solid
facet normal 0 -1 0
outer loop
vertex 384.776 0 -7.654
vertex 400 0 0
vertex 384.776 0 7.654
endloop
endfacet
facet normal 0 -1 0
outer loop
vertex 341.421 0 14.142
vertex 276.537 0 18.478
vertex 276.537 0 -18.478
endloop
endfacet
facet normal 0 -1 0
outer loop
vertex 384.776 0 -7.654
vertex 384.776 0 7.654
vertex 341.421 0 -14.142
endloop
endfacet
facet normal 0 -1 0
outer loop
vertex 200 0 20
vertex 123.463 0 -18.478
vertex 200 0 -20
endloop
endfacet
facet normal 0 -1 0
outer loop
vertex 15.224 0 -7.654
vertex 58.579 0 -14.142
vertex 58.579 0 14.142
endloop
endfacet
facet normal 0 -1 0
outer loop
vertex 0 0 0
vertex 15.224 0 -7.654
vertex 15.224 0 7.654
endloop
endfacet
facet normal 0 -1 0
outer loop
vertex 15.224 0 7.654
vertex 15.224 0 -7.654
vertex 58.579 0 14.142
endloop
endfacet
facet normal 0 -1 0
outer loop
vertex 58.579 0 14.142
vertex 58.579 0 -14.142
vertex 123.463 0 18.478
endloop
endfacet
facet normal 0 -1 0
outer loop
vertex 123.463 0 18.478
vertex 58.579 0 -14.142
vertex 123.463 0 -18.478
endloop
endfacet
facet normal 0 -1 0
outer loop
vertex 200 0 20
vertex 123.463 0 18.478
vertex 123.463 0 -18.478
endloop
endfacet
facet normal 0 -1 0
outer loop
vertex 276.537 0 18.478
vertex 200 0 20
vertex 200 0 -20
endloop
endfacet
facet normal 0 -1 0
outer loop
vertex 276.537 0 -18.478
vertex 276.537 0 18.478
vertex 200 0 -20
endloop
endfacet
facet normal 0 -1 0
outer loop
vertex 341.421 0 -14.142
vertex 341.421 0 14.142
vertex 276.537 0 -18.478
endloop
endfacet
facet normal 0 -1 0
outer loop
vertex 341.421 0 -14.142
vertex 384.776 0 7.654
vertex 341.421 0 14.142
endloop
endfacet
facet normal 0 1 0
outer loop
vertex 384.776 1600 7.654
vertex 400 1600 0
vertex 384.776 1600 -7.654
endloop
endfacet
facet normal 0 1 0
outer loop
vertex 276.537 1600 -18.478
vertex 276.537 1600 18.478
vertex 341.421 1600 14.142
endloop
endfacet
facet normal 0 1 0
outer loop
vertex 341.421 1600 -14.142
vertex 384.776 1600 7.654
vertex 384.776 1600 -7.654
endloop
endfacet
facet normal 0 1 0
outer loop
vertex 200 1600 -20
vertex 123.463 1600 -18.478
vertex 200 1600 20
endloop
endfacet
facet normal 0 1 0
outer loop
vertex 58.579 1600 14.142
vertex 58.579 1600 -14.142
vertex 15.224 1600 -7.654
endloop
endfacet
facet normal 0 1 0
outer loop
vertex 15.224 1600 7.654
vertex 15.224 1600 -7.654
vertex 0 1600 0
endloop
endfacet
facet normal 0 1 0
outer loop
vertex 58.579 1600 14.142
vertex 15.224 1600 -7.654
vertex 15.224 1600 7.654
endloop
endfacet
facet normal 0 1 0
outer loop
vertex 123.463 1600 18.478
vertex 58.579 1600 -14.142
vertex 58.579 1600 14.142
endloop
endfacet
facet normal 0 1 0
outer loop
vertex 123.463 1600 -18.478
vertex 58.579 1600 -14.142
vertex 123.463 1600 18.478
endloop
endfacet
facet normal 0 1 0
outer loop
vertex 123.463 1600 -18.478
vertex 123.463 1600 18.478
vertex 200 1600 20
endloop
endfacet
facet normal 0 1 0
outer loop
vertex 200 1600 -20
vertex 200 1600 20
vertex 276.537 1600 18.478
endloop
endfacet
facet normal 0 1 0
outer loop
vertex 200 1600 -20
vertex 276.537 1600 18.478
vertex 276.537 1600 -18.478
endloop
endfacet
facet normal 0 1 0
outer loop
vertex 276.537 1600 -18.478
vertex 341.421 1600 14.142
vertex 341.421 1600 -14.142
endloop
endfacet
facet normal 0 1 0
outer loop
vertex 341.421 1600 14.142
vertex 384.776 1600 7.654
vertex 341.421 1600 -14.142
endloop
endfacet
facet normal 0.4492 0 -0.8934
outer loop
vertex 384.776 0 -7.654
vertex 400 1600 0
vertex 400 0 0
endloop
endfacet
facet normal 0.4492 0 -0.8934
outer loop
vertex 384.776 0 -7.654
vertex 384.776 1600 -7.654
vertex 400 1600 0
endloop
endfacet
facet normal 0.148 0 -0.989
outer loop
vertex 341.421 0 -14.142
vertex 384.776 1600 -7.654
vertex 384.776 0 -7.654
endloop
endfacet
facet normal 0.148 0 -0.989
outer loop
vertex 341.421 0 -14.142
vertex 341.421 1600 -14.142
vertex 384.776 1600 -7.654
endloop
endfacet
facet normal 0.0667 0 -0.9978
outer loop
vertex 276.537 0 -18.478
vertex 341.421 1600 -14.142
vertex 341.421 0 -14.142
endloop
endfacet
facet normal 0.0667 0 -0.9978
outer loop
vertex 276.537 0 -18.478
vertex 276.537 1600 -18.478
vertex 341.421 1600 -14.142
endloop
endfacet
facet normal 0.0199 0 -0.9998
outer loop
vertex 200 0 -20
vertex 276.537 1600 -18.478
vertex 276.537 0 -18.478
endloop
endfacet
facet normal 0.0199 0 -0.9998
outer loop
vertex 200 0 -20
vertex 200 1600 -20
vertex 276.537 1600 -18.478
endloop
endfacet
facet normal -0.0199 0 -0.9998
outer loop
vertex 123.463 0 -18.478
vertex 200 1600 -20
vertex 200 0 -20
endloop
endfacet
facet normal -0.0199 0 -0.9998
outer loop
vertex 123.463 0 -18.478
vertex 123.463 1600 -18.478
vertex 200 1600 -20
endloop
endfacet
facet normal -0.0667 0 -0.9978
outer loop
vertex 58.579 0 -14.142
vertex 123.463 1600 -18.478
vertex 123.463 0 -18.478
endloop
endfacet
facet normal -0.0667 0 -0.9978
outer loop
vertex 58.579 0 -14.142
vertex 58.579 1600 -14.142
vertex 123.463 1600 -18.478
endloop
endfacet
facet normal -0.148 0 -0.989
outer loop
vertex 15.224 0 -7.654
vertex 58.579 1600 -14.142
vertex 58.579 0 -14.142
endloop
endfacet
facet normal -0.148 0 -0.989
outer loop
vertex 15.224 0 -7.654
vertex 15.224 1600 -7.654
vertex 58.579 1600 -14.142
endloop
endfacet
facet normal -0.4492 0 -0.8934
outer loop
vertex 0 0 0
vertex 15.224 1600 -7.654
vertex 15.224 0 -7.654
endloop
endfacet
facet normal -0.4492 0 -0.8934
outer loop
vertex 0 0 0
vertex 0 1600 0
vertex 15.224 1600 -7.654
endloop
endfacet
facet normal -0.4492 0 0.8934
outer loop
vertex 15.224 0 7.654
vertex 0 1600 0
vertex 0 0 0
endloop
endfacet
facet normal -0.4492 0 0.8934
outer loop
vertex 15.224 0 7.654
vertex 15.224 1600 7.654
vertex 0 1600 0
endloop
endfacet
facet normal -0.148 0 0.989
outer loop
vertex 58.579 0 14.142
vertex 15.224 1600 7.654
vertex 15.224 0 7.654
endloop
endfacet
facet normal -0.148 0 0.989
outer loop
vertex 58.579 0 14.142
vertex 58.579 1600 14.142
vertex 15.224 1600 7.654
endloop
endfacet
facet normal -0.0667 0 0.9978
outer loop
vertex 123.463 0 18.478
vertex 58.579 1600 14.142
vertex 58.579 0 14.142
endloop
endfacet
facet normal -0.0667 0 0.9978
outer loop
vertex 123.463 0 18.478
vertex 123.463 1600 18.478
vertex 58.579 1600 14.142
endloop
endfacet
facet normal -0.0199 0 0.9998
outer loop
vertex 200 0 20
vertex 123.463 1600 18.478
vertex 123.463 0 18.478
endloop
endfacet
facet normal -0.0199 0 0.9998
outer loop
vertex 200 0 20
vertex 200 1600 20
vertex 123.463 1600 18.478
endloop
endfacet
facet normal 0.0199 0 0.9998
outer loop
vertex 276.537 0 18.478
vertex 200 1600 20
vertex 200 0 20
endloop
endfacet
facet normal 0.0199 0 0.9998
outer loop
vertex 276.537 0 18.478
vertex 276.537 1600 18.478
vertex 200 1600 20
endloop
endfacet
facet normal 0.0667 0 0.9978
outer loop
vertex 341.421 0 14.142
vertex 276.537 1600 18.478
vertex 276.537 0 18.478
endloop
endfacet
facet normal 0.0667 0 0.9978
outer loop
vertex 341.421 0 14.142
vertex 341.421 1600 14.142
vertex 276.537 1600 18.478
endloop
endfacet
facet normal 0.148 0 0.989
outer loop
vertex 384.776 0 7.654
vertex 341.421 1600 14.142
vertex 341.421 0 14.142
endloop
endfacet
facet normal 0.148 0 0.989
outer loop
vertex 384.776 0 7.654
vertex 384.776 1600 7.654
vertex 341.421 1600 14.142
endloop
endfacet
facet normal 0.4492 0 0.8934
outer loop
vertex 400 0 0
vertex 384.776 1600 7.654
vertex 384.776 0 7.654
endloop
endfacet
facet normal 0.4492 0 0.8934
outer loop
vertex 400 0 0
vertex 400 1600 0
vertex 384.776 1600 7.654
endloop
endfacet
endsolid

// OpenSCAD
rotate([-90,0,0])
 translate([200,0,0])
  linear_extrude(height=1600)
   resize([400,40])circle(d=10);
    
